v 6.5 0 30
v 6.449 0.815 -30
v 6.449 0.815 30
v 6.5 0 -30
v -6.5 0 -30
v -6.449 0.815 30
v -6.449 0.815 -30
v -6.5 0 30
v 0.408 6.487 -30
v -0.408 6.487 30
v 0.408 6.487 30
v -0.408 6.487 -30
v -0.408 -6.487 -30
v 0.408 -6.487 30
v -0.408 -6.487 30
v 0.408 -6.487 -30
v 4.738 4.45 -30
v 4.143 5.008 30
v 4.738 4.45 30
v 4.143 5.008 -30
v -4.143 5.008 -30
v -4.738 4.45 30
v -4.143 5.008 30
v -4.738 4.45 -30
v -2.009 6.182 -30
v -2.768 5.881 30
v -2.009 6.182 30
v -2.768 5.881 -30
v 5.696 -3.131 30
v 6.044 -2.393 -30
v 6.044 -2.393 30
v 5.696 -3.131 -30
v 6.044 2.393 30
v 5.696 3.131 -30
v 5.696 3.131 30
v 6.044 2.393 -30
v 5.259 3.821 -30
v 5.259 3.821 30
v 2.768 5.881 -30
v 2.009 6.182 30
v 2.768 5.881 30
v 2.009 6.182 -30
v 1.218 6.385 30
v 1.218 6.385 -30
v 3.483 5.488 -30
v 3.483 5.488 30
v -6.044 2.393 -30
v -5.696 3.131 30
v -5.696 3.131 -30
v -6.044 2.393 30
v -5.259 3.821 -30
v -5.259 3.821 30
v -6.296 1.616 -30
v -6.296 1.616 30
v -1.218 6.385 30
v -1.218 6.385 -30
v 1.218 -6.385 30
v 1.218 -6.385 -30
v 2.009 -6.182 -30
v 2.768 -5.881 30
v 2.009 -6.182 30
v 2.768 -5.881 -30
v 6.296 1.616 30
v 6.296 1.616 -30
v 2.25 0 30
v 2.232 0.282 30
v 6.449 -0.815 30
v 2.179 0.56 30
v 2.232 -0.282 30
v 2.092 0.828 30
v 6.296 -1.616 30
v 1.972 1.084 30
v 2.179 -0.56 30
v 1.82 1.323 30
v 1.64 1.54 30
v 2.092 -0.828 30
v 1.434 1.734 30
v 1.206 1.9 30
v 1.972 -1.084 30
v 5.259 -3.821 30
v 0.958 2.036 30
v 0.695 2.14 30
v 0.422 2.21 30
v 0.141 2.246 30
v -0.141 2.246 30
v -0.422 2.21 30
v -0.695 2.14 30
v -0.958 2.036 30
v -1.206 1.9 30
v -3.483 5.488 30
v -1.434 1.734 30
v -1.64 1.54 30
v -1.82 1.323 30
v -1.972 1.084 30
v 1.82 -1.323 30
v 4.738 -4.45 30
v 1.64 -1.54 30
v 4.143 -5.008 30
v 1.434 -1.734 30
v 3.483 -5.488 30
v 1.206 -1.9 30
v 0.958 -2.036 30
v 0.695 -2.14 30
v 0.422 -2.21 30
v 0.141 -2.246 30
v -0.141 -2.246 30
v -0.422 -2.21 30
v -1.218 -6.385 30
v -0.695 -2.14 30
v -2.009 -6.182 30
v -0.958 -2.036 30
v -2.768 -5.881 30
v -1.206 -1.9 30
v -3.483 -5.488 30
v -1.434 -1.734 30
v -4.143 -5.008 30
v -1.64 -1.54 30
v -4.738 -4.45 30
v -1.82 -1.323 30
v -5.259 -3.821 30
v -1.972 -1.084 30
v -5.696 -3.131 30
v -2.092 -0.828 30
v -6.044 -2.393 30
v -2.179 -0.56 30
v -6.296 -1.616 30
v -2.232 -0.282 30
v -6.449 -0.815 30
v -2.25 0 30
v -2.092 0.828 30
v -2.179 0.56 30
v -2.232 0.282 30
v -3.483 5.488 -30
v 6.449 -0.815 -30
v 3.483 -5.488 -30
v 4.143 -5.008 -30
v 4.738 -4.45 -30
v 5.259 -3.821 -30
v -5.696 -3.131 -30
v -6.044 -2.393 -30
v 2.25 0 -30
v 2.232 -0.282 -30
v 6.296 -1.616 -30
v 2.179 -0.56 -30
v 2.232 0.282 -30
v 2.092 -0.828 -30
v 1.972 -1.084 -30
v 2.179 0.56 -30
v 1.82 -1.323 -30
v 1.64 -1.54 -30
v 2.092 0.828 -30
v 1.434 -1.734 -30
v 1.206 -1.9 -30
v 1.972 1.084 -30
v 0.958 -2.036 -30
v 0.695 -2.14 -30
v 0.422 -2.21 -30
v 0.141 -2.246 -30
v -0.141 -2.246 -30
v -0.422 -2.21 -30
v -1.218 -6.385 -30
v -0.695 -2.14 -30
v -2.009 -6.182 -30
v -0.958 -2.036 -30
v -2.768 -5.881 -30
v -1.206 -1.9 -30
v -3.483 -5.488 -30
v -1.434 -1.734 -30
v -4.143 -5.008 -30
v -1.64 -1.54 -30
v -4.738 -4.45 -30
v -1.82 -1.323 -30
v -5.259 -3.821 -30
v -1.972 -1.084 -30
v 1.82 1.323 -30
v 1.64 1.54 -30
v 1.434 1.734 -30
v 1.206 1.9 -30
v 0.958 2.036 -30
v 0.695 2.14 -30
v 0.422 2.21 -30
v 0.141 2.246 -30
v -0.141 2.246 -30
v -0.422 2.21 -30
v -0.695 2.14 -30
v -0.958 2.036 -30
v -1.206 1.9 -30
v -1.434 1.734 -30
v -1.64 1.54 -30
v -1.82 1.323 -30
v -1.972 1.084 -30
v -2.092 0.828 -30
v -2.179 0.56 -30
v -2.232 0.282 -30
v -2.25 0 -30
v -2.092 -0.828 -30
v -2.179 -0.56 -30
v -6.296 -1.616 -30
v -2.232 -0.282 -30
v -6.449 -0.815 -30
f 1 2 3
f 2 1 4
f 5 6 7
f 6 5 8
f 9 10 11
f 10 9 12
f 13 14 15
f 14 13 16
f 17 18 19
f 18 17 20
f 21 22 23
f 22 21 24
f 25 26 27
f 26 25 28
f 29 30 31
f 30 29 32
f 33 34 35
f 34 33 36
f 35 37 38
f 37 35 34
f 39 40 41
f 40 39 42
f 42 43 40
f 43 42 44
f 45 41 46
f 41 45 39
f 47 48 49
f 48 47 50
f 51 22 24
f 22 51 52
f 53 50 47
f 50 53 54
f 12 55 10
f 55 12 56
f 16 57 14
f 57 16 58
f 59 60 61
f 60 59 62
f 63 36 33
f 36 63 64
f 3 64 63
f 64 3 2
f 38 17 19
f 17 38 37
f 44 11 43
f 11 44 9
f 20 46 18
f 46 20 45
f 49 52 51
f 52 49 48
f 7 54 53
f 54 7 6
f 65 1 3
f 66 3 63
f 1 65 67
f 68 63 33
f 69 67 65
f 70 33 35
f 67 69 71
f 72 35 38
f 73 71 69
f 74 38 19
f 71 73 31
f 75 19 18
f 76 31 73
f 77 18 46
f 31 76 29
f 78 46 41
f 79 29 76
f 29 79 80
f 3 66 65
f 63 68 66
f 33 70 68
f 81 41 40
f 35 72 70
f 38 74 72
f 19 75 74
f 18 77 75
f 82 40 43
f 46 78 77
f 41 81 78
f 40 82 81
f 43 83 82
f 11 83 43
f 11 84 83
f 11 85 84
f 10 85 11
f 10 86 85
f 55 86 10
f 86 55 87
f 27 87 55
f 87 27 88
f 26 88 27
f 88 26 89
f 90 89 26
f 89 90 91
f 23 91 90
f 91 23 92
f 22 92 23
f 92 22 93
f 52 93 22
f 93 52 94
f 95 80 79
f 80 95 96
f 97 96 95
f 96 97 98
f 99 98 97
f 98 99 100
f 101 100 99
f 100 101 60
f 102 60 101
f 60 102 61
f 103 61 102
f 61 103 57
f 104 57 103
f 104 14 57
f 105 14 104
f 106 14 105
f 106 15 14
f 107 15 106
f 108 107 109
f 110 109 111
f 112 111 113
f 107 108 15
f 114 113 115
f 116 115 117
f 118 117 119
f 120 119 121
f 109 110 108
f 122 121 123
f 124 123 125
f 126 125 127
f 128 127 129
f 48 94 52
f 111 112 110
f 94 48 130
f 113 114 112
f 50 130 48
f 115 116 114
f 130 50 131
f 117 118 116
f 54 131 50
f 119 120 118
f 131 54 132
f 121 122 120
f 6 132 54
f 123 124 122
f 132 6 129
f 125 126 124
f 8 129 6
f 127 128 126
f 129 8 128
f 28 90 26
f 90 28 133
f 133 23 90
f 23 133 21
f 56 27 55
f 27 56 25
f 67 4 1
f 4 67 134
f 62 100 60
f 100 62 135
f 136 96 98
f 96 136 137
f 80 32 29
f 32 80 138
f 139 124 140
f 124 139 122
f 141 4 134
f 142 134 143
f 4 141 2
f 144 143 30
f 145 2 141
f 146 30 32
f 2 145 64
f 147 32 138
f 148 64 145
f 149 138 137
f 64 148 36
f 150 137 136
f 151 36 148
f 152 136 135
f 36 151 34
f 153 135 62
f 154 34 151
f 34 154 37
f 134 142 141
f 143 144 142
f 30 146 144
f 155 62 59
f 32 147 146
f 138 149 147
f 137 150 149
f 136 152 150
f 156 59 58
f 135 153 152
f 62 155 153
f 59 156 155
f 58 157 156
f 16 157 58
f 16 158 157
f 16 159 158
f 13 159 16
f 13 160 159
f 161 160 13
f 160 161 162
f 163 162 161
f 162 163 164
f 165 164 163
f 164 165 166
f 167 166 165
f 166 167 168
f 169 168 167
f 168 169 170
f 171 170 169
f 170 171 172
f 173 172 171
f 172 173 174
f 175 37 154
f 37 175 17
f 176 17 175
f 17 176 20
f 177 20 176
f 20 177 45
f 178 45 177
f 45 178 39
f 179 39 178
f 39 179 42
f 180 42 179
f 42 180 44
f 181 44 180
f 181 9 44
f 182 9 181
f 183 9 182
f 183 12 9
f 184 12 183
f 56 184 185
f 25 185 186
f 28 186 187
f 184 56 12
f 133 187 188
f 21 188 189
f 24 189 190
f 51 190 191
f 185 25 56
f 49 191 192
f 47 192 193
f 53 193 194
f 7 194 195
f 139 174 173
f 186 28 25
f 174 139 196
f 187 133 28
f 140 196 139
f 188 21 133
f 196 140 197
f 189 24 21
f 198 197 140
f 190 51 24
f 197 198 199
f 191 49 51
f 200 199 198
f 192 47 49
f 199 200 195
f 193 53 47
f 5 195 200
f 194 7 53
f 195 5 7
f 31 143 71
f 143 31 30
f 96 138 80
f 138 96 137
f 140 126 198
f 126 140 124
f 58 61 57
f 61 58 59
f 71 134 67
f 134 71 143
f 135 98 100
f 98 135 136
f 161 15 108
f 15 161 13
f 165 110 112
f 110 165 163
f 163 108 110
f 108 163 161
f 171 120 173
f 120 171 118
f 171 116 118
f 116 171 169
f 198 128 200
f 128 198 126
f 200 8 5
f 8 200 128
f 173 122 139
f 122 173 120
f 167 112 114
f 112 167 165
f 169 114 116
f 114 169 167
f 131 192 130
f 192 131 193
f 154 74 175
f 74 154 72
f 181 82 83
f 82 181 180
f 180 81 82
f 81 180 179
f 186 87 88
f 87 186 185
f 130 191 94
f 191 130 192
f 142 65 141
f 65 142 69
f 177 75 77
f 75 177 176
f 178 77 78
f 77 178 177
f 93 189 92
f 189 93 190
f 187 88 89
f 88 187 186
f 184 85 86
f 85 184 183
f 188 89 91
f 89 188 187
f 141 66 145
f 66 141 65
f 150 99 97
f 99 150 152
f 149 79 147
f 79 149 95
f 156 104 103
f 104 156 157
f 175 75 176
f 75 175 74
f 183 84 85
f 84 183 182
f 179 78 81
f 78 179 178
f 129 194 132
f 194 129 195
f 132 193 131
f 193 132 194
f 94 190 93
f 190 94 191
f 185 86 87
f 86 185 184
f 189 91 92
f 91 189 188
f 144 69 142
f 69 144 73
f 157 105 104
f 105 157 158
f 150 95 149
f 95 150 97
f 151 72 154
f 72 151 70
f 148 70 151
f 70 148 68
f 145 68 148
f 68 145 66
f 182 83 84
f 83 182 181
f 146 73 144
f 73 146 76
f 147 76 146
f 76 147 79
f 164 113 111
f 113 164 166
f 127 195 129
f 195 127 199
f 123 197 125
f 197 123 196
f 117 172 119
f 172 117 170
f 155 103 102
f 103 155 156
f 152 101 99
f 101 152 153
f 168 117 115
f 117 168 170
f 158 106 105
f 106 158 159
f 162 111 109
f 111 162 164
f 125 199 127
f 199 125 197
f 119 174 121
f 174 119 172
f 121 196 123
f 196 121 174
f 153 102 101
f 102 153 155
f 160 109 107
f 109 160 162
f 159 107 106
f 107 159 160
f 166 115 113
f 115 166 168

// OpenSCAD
$fn = 50;


difference() {
	union() {
		translate(v = [0, 0, -30.0000000000]) {
			cylinder(h = 60, r = 6.5000000000);
		}
	}
	union() {
		translate(v = [0, 0, -100.0000000000]) {
			cylinder(h = 200, r = 2.2500000000);
		}
	}
}
